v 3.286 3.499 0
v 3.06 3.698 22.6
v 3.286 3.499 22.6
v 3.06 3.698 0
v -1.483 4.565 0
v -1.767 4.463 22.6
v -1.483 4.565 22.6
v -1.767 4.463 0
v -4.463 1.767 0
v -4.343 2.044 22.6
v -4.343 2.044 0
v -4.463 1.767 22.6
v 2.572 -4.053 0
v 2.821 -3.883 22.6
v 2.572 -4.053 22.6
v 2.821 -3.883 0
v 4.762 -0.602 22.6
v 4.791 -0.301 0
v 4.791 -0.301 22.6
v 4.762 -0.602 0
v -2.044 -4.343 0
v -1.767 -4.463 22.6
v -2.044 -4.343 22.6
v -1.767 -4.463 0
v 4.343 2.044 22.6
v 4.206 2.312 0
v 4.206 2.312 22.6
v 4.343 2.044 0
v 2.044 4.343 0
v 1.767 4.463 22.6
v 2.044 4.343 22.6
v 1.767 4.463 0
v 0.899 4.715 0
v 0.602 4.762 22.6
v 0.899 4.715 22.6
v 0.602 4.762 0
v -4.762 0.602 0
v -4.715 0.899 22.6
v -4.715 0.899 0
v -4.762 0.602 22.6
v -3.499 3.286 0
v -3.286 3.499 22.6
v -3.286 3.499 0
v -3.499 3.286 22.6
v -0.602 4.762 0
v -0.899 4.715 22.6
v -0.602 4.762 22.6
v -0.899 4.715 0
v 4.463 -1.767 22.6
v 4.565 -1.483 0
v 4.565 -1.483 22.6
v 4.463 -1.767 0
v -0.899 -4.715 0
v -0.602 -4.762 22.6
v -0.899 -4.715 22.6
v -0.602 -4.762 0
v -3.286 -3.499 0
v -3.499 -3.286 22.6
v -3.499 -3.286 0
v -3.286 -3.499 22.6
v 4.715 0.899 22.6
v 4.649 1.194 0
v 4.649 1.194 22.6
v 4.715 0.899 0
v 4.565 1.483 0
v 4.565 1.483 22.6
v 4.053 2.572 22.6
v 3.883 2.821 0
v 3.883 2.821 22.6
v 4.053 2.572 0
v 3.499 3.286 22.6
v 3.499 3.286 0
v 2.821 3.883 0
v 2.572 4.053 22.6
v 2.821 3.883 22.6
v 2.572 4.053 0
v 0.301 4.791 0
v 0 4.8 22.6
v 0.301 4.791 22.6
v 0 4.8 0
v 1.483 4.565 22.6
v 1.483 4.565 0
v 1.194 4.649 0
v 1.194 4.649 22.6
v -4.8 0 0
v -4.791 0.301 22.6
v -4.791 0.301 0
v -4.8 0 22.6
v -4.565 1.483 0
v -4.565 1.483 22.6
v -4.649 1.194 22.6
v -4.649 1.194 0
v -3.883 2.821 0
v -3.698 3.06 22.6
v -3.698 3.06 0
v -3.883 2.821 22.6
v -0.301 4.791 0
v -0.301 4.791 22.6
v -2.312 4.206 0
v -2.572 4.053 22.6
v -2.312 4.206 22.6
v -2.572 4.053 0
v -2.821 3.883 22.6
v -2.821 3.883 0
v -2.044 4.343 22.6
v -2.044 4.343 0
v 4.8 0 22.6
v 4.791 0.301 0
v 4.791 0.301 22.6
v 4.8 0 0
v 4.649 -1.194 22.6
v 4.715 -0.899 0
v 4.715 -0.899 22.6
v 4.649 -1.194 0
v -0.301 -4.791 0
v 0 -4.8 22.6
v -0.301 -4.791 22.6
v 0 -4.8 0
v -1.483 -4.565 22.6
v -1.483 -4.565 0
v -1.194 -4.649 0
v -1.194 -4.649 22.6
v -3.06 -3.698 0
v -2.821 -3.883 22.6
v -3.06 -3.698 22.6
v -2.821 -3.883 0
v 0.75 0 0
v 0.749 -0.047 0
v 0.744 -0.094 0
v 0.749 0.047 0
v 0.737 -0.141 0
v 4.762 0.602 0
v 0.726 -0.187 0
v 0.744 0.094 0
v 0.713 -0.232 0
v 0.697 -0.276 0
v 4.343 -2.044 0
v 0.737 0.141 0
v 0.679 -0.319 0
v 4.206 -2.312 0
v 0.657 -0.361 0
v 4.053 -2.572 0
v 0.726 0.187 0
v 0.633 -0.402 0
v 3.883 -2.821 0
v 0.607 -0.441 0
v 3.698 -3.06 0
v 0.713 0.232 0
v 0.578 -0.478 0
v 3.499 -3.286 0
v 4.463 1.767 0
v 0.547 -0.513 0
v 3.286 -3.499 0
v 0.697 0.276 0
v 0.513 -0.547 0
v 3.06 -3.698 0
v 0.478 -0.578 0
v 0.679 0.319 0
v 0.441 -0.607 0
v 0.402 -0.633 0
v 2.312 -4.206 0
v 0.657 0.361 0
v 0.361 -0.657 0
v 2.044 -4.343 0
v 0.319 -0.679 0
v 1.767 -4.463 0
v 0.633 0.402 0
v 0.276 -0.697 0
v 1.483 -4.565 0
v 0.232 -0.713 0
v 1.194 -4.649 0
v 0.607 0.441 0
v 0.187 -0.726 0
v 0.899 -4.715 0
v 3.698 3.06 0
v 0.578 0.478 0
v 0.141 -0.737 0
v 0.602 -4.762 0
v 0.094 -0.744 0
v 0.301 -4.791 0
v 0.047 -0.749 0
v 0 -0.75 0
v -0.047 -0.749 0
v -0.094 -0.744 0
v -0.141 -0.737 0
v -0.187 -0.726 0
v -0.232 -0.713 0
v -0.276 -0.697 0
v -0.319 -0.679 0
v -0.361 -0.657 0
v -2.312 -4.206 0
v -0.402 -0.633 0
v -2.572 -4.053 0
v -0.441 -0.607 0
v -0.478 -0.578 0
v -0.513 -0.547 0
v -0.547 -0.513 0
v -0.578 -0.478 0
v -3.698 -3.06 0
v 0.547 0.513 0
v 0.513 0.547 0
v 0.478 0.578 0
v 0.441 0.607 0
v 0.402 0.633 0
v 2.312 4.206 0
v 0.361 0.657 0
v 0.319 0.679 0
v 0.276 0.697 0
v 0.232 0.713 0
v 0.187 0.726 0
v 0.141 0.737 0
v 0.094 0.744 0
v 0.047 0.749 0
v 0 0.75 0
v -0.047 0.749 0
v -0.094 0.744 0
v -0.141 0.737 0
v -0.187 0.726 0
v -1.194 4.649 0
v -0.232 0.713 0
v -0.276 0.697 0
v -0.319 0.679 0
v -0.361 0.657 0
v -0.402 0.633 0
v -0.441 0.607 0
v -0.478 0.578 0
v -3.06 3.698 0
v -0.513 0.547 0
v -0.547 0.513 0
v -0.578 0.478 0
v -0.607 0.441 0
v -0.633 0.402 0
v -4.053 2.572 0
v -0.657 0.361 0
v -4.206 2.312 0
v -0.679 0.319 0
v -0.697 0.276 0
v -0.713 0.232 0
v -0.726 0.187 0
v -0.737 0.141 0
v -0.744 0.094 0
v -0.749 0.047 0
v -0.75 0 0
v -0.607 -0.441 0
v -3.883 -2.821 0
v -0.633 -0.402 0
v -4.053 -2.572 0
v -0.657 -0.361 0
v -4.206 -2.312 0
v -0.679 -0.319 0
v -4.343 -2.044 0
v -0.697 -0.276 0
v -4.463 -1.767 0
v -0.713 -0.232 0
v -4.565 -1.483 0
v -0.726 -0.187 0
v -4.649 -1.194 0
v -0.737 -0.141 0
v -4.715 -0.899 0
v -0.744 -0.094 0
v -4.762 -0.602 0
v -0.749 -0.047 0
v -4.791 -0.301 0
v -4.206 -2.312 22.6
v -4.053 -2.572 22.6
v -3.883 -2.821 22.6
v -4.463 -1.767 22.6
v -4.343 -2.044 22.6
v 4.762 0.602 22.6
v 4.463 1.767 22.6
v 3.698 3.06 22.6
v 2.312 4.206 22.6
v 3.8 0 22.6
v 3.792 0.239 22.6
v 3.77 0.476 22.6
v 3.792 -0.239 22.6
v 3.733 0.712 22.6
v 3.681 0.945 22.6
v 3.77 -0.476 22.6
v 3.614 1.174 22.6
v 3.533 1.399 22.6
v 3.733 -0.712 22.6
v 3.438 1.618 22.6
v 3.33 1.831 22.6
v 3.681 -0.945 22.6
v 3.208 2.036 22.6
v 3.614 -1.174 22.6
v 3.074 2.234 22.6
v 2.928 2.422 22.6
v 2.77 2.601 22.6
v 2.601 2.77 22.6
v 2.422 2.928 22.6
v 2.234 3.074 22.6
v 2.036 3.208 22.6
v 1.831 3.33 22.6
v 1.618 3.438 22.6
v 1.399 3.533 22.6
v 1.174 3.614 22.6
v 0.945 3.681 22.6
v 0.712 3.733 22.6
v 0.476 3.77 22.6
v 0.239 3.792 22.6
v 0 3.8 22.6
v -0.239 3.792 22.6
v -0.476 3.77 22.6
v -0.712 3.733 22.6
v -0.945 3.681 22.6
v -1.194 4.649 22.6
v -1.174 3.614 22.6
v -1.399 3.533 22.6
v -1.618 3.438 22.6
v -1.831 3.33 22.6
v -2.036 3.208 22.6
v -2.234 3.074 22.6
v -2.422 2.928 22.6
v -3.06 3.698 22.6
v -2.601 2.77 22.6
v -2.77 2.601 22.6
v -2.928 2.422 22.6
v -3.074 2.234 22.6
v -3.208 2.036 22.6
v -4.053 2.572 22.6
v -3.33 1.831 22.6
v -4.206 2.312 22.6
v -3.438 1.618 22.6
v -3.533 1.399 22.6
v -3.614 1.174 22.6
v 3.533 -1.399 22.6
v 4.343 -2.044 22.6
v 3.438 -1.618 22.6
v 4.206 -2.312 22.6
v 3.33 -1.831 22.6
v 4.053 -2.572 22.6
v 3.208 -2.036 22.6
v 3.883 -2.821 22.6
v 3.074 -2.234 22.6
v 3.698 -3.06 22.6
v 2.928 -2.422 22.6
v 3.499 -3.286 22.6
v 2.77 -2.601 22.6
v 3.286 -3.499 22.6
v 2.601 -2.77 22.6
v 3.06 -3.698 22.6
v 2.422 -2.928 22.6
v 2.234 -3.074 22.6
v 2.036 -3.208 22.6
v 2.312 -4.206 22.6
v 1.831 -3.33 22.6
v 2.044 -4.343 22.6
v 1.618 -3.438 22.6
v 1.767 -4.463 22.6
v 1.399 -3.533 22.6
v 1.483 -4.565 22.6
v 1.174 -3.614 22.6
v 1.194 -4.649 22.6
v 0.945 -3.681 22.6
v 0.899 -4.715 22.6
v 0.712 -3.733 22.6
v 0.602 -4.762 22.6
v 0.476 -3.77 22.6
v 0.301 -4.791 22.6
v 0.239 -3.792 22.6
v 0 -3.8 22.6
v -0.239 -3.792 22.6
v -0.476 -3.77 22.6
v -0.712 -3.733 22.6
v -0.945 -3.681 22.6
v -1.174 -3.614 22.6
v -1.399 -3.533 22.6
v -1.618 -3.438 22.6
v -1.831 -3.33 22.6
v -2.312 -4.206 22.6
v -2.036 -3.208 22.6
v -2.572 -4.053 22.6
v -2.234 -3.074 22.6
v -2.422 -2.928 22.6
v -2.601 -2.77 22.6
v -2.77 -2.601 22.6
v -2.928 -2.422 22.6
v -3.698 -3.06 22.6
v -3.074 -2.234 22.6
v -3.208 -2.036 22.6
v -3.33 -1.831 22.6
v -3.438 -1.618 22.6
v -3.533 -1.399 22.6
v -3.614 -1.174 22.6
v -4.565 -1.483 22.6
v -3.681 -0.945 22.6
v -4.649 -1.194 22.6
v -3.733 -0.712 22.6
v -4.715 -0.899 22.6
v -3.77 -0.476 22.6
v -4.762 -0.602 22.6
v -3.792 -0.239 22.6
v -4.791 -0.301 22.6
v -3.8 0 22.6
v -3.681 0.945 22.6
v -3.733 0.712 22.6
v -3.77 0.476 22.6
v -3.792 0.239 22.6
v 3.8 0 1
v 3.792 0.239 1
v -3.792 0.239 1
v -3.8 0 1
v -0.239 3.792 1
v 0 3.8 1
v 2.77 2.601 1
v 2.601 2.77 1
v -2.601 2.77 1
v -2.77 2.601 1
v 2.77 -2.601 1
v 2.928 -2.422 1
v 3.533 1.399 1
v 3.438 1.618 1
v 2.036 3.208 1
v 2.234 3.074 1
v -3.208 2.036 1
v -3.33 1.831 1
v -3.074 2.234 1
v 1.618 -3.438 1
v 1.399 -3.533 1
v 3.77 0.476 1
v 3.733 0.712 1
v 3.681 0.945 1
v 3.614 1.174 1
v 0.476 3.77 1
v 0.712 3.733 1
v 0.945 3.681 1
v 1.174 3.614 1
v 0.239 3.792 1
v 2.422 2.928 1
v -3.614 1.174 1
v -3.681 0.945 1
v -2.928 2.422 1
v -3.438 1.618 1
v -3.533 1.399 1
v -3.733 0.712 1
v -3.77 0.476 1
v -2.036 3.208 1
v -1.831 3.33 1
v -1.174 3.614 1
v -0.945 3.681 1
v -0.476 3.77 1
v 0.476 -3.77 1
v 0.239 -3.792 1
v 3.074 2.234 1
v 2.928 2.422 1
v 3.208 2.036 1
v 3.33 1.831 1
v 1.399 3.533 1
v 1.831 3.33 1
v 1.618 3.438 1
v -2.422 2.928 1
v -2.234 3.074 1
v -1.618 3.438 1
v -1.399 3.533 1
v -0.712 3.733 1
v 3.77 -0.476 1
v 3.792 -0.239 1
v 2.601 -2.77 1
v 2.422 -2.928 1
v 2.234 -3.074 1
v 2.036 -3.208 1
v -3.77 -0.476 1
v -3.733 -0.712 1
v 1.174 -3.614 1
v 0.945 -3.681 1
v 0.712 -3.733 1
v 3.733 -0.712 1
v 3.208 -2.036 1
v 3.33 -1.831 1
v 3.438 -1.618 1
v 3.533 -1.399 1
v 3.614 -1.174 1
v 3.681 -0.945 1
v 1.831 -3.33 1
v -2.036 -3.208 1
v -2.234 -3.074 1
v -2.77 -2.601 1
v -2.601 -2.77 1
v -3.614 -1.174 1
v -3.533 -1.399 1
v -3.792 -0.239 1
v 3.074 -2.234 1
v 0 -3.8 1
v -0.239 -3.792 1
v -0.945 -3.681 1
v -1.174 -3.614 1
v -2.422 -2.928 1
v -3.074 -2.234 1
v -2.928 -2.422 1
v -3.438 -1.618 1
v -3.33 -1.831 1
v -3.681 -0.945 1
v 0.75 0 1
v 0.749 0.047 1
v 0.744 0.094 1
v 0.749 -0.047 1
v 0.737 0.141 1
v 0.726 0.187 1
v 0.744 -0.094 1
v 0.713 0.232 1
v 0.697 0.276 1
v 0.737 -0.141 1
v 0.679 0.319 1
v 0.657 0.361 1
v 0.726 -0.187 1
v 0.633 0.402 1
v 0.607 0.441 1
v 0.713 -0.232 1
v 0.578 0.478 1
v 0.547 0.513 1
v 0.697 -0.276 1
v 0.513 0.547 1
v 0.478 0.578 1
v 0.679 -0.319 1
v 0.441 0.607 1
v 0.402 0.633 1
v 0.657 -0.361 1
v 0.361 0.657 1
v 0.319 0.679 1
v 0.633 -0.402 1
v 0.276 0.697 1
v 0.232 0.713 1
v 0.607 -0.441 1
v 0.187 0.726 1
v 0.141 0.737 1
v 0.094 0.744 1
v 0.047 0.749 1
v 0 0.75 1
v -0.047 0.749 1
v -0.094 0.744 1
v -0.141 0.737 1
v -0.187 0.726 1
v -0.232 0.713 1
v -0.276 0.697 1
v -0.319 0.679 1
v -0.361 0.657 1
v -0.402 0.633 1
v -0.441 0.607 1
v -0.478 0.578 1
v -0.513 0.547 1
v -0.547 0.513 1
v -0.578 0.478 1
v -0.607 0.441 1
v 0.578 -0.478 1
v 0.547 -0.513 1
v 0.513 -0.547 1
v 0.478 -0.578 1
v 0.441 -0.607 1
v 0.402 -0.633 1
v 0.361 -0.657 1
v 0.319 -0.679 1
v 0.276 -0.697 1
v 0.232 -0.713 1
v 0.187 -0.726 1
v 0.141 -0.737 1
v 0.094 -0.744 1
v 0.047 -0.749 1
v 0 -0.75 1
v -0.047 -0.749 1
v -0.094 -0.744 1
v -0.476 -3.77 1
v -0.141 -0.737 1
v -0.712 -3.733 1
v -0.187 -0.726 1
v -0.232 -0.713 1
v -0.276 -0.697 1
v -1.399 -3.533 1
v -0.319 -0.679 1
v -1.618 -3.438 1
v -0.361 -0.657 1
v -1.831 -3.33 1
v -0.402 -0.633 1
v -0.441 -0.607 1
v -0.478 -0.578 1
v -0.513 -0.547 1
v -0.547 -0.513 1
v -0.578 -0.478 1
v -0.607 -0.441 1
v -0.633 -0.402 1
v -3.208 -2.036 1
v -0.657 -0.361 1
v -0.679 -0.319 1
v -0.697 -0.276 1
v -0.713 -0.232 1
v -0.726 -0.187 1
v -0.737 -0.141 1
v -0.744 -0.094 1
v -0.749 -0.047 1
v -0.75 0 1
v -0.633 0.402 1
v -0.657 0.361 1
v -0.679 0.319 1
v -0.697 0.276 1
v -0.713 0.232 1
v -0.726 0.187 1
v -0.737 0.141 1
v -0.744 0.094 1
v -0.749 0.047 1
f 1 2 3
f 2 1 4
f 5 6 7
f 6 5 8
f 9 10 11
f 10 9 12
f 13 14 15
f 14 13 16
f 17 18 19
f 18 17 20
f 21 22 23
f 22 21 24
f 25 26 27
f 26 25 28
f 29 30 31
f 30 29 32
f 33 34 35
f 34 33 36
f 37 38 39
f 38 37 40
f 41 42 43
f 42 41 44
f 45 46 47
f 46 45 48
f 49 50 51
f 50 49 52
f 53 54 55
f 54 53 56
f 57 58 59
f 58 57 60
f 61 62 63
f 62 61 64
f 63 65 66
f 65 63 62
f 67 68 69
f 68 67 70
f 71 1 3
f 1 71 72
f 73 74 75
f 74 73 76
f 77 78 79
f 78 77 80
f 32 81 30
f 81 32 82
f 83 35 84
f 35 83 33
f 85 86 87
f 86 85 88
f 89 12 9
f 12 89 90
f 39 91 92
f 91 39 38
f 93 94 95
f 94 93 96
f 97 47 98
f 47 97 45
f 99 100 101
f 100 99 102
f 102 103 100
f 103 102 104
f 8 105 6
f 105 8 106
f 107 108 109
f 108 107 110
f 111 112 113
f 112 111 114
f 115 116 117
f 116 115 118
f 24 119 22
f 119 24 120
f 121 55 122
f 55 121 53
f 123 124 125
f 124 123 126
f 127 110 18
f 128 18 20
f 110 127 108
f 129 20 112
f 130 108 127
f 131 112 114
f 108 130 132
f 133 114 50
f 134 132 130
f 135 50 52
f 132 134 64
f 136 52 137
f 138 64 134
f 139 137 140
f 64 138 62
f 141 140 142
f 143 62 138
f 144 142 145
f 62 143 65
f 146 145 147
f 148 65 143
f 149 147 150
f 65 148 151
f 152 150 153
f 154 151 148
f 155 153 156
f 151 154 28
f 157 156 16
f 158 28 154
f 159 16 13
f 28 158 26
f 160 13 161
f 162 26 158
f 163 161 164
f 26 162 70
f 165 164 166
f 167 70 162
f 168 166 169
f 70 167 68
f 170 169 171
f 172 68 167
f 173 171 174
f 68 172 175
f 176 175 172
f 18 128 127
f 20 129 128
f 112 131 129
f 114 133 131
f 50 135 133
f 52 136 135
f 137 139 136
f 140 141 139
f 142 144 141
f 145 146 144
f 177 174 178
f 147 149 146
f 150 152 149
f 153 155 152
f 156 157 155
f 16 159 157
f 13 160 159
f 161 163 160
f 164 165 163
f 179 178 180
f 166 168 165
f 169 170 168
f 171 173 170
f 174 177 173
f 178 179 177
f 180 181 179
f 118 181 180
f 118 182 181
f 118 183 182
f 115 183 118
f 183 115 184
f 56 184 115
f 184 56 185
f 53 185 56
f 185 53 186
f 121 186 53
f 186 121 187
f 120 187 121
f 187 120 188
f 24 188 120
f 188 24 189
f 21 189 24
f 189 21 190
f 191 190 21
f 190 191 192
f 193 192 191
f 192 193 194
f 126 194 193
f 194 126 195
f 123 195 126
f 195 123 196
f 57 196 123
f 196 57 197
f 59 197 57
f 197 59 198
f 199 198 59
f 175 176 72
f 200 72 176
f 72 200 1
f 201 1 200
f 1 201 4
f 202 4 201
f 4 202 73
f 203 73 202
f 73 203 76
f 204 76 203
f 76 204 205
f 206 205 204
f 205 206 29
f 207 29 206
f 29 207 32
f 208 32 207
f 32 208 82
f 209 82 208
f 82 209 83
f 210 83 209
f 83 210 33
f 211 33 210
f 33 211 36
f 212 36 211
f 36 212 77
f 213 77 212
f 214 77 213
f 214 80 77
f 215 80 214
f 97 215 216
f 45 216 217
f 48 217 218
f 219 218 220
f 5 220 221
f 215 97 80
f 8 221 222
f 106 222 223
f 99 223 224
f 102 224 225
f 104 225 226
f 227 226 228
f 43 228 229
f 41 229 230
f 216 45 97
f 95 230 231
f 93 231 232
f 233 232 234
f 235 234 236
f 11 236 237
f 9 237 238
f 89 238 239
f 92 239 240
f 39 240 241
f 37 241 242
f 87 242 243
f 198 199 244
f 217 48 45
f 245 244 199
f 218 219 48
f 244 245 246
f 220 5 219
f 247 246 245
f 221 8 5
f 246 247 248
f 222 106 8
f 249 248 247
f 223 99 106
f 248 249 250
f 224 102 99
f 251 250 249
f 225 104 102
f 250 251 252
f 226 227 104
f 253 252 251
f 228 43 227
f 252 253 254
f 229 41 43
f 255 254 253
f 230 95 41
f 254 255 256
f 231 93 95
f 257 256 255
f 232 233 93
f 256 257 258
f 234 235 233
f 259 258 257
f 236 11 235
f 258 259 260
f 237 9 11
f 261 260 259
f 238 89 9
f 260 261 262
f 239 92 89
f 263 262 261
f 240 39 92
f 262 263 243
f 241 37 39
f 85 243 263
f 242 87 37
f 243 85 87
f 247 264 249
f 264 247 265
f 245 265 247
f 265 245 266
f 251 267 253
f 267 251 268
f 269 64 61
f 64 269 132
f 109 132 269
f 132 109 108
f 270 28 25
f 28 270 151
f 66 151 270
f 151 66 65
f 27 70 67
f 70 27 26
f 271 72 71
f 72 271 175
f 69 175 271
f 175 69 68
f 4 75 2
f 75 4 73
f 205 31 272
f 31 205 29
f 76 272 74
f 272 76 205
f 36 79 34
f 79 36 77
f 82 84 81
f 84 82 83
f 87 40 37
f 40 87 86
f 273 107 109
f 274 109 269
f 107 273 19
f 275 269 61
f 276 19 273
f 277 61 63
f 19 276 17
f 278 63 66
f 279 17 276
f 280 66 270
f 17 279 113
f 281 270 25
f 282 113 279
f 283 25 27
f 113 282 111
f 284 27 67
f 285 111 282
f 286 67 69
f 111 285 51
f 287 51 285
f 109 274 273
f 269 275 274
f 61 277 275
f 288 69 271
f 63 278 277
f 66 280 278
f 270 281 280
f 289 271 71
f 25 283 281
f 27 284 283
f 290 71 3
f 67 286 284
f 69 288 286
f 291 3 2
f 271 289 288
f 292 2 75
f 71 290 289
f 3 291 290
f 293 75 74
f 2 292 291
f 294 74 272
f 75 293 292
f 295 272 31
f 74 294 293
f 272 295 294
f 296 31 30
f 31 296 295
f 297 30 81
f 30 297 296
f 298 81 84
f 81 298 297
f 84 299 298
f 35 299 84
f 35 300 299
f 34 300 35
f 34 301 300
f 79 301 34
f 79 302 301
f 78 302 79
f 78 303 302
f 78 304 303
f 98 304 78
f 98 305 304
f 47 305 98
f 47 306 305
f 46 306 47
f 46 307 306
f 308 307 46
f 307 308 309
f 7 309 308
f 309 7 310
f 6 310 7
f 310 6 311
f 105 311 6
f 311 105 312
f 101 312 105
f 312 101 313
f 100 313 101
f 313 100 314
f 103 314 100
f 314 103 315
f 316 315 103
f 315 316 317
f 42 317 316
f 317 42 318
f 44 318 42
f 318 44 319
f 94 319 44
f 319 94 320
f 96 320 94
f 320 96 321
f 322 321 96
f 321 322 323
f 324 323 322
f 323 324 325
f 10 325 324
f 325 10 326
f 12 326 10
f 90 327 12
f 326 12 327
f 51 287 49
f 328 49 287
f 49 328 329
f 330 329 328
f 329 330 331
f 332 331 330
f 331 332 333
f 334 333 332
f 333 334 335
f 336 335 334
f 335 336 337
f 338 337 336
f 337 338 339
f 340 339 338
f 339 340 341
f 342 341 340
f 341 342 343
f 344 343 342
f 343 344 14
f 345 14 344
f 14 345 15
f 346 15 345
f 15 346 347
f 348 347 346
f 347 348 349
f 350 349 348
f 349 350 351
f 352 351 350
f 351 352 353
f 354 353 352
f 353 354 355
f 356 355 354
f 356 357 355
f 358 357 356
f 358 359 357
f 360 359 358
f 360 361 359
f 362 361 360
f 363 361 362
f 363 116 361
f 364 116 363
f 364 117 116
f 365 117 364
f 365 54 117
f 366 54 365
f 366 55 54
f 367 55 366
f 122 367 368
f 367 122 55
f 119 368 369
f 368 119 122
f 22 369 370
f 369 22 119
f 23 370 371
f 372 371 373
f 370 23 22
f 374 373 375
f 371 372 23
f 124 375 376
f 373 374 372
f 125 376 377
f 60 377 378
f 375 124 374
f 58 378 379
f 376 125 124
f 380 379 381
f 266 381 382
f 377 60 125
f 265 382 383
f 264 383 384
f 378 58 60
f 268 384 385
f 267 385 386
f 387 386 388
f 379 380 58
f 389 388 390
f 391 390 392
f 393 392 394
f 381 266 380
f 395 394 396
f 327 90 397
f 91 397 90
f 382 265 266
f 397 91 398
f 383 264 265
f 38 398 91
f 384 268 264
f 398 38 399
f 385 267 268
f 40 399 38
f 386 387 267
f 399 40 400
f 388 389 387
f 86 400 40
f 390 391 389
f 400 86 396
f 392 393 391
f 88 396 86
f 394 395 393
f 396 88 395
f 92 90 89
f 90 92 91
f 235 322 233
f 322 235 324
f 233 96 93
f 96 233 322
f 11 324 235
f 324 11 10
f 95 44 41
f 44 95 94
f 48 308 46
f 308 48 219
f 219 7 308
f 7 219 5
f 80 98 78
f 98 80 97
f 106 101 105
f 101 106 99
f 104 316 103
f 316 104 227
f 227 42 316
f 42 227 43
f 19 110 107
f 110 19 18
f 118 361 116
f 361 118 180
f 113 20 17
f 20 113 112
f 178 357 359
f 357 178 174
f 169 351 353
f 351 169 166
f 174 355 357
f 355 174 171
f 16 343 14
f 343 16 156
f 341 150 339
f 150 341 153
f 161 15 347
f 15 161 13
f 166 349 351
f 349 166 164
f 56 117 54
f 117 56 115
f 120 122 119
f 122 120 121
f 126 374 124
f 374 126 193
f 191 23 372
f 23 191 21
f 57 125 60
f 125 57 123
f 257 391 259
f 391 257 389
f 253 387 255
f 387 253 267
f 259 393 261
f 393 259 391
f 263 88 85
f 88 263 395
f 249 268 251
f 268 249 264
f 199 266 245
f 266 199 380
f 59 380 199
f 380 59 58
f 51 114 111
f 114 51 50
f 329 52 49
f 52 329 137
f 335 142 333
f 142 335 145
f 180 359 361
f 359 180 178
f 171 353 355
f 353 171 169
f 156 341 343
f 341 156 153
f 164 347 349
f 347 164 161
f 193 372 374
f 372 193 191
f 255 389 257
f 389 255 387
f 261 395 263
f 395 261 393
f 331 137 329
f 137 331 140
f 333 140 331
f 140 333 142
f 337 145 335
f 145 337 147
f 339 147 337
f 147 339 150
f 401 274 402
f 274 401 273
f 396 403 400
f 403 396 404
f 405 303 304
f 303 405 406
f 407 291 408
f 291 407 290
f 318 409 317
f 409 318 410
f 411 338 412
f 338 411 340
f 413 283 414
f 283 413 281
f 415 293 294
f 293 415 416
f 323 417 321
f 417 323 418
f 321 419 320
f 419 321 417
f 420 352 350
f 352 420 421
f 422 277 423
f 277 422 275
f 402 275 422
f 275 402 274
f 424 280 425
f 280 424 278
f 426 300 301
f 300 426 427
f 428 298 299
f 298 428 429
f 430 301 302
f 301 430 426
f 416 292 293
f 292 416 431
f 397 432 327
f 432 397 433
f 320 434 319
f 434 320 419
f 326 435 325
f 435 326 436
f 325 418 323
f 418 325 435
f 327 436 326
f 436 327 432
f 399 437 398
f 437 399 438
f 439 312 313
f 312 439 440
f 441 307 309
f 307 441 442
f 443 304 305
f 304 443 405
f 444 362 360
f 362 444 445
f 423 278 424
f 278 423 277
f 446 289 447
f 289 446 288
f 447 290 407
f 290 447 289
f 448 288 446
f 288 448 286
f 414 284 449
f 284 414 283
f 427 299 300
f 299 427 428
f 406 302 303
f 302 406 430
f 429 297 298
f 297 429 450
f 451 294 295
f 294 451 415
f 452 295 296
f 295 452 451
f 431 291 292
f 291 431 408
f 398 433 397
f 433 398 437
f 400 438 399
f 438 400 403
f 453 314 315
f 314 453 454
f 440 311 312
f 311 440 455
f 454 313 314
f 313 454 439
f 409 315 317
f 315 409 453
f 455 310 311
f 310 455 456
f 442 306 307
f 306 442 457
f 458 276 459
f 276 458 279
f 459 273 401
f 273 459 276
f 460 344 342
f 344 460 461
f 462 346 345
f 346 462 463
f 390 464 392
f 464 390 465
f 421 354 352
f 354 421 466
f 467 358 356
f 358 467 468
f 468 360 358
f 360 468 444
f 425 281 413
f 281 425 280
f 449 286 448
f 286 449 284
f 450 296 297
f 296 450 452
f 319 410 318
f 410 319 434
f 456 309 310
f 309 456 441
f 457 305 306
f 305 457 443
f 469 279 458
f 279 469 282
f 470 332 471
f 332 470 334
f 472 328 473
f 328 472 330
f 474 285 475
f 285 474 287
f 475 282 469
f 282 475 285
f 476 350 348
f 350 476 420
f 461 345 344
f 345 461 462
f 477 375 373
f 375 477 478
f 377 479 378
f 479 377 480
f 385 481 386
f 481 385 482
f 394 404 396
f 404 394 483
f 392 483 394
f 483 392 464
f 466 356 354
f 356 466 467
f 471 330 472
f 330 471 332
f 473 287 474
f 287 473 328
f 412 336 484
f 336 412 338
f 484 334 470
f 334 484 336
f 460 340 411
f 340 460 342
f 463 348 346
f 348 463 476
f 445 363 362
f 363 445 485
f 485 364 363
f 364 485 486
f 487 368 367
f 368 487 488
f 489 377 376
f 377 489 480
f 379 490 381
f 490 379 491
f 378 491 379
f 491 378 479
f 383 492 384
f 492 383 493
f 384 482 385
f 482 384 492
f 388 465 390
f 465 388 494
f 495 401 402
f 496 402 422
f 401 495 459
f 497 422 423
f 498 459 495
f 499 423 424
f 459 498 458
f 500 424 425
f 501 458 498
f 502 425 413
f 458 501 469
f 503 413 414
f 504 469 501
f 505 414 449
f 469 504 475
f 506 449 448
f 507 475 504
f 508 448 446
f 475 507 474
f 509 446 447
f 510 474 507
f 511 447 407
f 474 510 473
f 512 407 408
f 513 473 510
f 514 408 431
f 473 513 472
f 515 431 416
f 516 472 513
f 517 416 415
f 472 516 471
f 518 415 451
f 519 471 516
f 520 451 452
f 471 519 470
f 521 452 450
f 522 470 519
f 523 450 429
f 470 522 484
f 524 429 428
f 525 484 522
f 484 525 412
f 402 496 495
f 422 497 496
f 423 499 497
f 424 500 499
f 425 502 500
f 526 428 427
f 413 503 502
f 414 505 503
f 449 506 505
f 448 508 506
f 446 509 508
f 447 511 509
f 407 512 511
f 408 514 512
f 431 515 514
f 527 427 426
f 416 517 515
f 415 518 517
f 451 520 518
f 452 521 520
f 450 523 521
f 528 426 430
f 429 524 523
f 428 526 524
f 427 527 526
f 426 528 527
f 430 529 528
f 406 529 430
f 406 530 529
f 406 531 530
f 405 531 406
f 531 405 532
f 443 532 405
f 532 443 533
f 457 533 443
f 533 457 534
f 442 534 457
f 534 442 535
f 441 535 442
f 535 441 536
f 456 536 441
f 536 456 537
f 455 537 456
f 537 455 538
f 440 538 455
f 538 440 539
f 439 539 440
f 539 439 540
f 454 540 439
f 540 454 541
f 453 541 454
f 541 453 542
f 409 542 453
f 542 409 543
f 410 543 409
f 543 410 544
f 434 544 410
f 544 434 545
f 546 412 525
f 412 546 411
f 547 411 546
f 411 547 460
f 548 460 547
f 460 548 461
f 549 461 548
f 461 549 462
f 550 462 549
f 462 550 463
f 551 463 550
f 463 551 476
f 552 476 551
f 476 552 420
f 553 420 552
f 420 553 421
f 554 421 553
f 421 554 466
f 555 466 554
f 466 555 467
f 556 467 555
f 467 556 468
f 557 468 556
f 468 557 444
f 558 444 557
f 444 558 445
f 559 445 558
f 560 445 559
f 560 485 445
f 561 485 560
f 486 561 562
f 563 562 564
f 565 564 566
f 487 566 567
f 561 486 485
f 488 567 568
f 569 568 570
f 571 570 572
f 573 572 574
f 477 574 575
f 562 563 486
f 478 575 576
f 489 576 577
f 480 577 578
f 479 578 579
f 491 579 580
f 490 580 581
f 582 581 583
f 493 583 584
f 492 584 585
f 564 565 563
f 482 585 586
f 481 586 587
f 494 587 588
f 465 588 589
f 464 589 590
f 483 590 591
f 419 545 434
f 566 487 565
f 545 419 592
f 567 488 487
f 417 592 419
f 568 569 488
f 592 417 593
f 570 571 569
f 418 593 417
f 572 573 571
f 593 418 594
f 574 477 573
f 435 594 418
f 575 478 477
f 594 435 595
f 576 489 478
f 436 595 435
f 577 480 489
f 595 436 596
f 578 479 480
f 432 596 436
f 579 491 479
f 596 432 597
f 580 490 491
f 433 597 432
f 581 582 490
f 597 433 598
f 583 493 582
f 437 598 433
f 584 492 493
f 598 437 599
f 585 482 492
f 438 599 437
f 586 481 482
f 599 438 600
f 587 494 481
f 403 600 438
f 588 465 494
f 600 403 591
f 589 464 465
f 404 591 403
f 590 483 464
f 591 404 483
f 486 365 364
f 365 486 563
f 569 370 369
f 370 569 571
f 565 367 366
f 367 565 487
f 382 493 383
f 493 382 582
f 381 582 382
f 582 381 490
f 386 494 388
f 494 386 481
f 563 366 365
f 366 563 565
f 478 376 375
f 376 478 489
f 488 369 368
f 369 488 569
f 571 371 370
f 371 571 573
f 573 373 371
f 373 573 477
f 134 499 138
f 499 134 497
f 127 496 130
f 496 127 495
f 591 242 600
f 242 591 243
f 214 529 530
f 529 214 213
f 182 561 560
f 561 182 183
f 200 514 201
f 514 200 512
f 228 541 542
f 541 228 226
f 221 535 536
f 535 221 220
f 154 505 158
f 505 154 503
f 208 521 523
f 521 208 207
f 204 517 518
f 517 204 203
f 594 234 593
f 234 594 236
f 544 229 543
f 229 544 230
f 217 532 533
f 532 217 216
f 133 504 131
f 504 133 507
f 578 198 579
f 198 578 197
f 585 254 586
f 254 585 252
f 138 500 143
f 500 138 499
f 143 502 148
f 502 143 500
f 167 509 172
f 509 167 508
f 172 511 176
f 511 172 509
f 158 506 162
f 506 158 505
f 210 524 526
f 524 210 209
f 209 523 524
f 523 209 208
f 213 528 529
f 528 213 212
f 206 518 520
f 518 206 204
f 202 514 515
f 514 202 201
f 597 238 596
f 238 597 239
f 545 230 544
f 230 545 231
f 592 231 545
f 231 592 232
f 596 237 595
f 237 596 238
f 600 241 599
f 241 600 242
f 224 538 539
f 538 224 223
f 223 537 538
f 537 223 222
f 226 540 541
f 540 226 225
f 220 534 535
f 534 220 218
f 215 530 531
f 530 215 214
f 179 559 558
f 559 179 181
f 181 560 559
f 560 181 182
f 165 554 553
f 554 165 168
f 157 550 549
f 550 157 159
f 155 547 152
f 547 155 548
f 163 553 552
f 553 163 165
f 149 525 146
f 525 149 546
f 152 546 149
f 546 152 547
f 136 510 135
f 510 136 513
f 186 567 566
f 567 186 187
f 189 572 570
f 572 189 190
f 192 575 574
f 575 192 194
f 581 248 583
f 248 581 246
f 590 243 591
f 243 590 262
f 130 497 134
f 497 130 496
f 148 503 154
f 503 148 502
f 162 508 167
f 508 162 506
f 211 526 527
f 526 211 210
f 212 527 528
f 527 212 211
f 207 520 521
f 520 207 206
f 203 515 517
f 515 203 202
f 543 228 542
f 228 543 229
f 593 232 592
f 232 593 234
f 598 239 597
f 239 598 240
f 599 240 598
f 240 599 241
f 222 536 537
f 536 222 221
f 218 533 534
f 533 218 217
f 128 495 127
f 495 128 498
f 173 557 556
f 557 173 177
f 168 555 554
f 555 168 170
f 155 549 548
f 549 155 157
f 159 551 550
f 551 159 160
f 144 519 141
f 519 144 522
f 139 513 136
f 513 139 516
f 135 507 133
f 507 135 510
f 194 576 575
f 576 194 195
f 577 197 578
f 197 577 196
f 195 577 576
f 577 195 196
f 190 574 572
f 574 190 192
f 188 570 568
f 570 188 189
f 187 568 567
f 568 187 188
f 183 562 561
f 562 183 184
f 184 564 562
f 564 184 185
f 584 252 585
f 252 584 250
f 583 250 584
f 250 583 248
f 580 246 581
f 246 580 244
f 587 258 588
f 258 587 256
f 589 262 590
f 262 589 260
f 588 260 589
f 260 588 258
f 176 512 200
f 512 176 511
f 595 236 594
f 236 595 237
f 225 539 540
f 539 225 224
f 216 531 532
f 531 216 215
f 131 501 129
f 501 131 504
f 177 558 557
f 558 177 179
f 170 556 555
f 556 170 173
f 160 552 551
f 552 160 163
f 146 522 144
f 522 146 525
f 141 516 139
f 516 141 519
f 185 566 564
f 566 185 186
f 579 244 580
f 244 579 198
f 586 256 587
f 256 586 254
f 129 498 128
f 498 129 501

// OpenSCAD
// file: config.scad
/*
Title:          config.scad for R2B2 Nano
Description:    All configuration parameters for R2B2-Nano
Authors:        Pau Roura (@proura)
Date:           20180721
Version:        0.2
Notes:
*/

//General Config
$fn = 100;
w_walls=2.7;                //width of the walls
d_screw_h=3;                //screw thread hole diameter
d_screw_head=6.5;           //screw head diameter
d_screw_p=d_screw_h+0.4;    //screw pass trhougth diameter
h_support=8;                //screw support height
w_support=8;                //screw support width
w_chassis=70;               //chassis width
d_chassis=100;              //chassis depth
h_battery=12;               //battery height
h_control=12;               //electronics height

//motor
d_motor=7.6;        //motor diameter
d_motor_shaft=1.5;  //motor shaft diameter
h_motor=16.60;      //motor height

//motor_housing
w_walls_m=1;                           //width of the walls
gap_housing=3;                         //extra height of the encapsulation
h_motor_body=h_motor+(gap_housing*2);  //motor housing height

//Thrusters
d_motor_t=d_motor+(w_walls_m*2);    //motor support diameter
h_motor_sup=8;                      //motor support height
o_motor=0;                          //motor support distance from ground
d_thruster=34;                      //thruster diameter
h_thruster=30;                      //thruster height

//module propeller
h_propeller=10;     //propeller height
o_propeller=1;      //offset of the blades to shaft
n_blade=3;          //number of blades
s_blade=20;         //angle separation between blades
w_blade=4;          //width of the blades
rounded="empty";    //shape of the blades [round | trian | empty]
d_motor_grub=2;     //motor grub screw diameter
// main file
/*
Title:          motor_housing.scad
Description:    encapsulation for the motors
Authors:        Pau Roura (@proura)
Date:           20180610
Version:        0.1
Notes:

    Default values for module motor_housing

    module motor_housing(
        w_walls_m=1,          //width of the walls
        d_motor=7.6,          //motor diameter
        h_motor_body=22.6,    //motor housing height
        d_motor_shaft=1.5     //motor shaft diameter
    )
*/

include <config.scad>;

module motor_housing(w_walls_m=1, d_motor=7.6, h_motor_body=22.6, d_motor_shaft=1.5){
    difference() {
                                    cylinder(d=d_motor+w_walls_m*2, h=h_motor_body); 
        translate([0,0,w_walls_m])  cylinder(d=d_motor, h=h_motor_body);
        translate([0,0,-2])         cylinder(d=d_motor_shaft, h=h_motor_body);
    }     
}

//$fn = 100;
motor_housing(w_walls_m, d_motor, h_motor_body, d_motor_shaft);
